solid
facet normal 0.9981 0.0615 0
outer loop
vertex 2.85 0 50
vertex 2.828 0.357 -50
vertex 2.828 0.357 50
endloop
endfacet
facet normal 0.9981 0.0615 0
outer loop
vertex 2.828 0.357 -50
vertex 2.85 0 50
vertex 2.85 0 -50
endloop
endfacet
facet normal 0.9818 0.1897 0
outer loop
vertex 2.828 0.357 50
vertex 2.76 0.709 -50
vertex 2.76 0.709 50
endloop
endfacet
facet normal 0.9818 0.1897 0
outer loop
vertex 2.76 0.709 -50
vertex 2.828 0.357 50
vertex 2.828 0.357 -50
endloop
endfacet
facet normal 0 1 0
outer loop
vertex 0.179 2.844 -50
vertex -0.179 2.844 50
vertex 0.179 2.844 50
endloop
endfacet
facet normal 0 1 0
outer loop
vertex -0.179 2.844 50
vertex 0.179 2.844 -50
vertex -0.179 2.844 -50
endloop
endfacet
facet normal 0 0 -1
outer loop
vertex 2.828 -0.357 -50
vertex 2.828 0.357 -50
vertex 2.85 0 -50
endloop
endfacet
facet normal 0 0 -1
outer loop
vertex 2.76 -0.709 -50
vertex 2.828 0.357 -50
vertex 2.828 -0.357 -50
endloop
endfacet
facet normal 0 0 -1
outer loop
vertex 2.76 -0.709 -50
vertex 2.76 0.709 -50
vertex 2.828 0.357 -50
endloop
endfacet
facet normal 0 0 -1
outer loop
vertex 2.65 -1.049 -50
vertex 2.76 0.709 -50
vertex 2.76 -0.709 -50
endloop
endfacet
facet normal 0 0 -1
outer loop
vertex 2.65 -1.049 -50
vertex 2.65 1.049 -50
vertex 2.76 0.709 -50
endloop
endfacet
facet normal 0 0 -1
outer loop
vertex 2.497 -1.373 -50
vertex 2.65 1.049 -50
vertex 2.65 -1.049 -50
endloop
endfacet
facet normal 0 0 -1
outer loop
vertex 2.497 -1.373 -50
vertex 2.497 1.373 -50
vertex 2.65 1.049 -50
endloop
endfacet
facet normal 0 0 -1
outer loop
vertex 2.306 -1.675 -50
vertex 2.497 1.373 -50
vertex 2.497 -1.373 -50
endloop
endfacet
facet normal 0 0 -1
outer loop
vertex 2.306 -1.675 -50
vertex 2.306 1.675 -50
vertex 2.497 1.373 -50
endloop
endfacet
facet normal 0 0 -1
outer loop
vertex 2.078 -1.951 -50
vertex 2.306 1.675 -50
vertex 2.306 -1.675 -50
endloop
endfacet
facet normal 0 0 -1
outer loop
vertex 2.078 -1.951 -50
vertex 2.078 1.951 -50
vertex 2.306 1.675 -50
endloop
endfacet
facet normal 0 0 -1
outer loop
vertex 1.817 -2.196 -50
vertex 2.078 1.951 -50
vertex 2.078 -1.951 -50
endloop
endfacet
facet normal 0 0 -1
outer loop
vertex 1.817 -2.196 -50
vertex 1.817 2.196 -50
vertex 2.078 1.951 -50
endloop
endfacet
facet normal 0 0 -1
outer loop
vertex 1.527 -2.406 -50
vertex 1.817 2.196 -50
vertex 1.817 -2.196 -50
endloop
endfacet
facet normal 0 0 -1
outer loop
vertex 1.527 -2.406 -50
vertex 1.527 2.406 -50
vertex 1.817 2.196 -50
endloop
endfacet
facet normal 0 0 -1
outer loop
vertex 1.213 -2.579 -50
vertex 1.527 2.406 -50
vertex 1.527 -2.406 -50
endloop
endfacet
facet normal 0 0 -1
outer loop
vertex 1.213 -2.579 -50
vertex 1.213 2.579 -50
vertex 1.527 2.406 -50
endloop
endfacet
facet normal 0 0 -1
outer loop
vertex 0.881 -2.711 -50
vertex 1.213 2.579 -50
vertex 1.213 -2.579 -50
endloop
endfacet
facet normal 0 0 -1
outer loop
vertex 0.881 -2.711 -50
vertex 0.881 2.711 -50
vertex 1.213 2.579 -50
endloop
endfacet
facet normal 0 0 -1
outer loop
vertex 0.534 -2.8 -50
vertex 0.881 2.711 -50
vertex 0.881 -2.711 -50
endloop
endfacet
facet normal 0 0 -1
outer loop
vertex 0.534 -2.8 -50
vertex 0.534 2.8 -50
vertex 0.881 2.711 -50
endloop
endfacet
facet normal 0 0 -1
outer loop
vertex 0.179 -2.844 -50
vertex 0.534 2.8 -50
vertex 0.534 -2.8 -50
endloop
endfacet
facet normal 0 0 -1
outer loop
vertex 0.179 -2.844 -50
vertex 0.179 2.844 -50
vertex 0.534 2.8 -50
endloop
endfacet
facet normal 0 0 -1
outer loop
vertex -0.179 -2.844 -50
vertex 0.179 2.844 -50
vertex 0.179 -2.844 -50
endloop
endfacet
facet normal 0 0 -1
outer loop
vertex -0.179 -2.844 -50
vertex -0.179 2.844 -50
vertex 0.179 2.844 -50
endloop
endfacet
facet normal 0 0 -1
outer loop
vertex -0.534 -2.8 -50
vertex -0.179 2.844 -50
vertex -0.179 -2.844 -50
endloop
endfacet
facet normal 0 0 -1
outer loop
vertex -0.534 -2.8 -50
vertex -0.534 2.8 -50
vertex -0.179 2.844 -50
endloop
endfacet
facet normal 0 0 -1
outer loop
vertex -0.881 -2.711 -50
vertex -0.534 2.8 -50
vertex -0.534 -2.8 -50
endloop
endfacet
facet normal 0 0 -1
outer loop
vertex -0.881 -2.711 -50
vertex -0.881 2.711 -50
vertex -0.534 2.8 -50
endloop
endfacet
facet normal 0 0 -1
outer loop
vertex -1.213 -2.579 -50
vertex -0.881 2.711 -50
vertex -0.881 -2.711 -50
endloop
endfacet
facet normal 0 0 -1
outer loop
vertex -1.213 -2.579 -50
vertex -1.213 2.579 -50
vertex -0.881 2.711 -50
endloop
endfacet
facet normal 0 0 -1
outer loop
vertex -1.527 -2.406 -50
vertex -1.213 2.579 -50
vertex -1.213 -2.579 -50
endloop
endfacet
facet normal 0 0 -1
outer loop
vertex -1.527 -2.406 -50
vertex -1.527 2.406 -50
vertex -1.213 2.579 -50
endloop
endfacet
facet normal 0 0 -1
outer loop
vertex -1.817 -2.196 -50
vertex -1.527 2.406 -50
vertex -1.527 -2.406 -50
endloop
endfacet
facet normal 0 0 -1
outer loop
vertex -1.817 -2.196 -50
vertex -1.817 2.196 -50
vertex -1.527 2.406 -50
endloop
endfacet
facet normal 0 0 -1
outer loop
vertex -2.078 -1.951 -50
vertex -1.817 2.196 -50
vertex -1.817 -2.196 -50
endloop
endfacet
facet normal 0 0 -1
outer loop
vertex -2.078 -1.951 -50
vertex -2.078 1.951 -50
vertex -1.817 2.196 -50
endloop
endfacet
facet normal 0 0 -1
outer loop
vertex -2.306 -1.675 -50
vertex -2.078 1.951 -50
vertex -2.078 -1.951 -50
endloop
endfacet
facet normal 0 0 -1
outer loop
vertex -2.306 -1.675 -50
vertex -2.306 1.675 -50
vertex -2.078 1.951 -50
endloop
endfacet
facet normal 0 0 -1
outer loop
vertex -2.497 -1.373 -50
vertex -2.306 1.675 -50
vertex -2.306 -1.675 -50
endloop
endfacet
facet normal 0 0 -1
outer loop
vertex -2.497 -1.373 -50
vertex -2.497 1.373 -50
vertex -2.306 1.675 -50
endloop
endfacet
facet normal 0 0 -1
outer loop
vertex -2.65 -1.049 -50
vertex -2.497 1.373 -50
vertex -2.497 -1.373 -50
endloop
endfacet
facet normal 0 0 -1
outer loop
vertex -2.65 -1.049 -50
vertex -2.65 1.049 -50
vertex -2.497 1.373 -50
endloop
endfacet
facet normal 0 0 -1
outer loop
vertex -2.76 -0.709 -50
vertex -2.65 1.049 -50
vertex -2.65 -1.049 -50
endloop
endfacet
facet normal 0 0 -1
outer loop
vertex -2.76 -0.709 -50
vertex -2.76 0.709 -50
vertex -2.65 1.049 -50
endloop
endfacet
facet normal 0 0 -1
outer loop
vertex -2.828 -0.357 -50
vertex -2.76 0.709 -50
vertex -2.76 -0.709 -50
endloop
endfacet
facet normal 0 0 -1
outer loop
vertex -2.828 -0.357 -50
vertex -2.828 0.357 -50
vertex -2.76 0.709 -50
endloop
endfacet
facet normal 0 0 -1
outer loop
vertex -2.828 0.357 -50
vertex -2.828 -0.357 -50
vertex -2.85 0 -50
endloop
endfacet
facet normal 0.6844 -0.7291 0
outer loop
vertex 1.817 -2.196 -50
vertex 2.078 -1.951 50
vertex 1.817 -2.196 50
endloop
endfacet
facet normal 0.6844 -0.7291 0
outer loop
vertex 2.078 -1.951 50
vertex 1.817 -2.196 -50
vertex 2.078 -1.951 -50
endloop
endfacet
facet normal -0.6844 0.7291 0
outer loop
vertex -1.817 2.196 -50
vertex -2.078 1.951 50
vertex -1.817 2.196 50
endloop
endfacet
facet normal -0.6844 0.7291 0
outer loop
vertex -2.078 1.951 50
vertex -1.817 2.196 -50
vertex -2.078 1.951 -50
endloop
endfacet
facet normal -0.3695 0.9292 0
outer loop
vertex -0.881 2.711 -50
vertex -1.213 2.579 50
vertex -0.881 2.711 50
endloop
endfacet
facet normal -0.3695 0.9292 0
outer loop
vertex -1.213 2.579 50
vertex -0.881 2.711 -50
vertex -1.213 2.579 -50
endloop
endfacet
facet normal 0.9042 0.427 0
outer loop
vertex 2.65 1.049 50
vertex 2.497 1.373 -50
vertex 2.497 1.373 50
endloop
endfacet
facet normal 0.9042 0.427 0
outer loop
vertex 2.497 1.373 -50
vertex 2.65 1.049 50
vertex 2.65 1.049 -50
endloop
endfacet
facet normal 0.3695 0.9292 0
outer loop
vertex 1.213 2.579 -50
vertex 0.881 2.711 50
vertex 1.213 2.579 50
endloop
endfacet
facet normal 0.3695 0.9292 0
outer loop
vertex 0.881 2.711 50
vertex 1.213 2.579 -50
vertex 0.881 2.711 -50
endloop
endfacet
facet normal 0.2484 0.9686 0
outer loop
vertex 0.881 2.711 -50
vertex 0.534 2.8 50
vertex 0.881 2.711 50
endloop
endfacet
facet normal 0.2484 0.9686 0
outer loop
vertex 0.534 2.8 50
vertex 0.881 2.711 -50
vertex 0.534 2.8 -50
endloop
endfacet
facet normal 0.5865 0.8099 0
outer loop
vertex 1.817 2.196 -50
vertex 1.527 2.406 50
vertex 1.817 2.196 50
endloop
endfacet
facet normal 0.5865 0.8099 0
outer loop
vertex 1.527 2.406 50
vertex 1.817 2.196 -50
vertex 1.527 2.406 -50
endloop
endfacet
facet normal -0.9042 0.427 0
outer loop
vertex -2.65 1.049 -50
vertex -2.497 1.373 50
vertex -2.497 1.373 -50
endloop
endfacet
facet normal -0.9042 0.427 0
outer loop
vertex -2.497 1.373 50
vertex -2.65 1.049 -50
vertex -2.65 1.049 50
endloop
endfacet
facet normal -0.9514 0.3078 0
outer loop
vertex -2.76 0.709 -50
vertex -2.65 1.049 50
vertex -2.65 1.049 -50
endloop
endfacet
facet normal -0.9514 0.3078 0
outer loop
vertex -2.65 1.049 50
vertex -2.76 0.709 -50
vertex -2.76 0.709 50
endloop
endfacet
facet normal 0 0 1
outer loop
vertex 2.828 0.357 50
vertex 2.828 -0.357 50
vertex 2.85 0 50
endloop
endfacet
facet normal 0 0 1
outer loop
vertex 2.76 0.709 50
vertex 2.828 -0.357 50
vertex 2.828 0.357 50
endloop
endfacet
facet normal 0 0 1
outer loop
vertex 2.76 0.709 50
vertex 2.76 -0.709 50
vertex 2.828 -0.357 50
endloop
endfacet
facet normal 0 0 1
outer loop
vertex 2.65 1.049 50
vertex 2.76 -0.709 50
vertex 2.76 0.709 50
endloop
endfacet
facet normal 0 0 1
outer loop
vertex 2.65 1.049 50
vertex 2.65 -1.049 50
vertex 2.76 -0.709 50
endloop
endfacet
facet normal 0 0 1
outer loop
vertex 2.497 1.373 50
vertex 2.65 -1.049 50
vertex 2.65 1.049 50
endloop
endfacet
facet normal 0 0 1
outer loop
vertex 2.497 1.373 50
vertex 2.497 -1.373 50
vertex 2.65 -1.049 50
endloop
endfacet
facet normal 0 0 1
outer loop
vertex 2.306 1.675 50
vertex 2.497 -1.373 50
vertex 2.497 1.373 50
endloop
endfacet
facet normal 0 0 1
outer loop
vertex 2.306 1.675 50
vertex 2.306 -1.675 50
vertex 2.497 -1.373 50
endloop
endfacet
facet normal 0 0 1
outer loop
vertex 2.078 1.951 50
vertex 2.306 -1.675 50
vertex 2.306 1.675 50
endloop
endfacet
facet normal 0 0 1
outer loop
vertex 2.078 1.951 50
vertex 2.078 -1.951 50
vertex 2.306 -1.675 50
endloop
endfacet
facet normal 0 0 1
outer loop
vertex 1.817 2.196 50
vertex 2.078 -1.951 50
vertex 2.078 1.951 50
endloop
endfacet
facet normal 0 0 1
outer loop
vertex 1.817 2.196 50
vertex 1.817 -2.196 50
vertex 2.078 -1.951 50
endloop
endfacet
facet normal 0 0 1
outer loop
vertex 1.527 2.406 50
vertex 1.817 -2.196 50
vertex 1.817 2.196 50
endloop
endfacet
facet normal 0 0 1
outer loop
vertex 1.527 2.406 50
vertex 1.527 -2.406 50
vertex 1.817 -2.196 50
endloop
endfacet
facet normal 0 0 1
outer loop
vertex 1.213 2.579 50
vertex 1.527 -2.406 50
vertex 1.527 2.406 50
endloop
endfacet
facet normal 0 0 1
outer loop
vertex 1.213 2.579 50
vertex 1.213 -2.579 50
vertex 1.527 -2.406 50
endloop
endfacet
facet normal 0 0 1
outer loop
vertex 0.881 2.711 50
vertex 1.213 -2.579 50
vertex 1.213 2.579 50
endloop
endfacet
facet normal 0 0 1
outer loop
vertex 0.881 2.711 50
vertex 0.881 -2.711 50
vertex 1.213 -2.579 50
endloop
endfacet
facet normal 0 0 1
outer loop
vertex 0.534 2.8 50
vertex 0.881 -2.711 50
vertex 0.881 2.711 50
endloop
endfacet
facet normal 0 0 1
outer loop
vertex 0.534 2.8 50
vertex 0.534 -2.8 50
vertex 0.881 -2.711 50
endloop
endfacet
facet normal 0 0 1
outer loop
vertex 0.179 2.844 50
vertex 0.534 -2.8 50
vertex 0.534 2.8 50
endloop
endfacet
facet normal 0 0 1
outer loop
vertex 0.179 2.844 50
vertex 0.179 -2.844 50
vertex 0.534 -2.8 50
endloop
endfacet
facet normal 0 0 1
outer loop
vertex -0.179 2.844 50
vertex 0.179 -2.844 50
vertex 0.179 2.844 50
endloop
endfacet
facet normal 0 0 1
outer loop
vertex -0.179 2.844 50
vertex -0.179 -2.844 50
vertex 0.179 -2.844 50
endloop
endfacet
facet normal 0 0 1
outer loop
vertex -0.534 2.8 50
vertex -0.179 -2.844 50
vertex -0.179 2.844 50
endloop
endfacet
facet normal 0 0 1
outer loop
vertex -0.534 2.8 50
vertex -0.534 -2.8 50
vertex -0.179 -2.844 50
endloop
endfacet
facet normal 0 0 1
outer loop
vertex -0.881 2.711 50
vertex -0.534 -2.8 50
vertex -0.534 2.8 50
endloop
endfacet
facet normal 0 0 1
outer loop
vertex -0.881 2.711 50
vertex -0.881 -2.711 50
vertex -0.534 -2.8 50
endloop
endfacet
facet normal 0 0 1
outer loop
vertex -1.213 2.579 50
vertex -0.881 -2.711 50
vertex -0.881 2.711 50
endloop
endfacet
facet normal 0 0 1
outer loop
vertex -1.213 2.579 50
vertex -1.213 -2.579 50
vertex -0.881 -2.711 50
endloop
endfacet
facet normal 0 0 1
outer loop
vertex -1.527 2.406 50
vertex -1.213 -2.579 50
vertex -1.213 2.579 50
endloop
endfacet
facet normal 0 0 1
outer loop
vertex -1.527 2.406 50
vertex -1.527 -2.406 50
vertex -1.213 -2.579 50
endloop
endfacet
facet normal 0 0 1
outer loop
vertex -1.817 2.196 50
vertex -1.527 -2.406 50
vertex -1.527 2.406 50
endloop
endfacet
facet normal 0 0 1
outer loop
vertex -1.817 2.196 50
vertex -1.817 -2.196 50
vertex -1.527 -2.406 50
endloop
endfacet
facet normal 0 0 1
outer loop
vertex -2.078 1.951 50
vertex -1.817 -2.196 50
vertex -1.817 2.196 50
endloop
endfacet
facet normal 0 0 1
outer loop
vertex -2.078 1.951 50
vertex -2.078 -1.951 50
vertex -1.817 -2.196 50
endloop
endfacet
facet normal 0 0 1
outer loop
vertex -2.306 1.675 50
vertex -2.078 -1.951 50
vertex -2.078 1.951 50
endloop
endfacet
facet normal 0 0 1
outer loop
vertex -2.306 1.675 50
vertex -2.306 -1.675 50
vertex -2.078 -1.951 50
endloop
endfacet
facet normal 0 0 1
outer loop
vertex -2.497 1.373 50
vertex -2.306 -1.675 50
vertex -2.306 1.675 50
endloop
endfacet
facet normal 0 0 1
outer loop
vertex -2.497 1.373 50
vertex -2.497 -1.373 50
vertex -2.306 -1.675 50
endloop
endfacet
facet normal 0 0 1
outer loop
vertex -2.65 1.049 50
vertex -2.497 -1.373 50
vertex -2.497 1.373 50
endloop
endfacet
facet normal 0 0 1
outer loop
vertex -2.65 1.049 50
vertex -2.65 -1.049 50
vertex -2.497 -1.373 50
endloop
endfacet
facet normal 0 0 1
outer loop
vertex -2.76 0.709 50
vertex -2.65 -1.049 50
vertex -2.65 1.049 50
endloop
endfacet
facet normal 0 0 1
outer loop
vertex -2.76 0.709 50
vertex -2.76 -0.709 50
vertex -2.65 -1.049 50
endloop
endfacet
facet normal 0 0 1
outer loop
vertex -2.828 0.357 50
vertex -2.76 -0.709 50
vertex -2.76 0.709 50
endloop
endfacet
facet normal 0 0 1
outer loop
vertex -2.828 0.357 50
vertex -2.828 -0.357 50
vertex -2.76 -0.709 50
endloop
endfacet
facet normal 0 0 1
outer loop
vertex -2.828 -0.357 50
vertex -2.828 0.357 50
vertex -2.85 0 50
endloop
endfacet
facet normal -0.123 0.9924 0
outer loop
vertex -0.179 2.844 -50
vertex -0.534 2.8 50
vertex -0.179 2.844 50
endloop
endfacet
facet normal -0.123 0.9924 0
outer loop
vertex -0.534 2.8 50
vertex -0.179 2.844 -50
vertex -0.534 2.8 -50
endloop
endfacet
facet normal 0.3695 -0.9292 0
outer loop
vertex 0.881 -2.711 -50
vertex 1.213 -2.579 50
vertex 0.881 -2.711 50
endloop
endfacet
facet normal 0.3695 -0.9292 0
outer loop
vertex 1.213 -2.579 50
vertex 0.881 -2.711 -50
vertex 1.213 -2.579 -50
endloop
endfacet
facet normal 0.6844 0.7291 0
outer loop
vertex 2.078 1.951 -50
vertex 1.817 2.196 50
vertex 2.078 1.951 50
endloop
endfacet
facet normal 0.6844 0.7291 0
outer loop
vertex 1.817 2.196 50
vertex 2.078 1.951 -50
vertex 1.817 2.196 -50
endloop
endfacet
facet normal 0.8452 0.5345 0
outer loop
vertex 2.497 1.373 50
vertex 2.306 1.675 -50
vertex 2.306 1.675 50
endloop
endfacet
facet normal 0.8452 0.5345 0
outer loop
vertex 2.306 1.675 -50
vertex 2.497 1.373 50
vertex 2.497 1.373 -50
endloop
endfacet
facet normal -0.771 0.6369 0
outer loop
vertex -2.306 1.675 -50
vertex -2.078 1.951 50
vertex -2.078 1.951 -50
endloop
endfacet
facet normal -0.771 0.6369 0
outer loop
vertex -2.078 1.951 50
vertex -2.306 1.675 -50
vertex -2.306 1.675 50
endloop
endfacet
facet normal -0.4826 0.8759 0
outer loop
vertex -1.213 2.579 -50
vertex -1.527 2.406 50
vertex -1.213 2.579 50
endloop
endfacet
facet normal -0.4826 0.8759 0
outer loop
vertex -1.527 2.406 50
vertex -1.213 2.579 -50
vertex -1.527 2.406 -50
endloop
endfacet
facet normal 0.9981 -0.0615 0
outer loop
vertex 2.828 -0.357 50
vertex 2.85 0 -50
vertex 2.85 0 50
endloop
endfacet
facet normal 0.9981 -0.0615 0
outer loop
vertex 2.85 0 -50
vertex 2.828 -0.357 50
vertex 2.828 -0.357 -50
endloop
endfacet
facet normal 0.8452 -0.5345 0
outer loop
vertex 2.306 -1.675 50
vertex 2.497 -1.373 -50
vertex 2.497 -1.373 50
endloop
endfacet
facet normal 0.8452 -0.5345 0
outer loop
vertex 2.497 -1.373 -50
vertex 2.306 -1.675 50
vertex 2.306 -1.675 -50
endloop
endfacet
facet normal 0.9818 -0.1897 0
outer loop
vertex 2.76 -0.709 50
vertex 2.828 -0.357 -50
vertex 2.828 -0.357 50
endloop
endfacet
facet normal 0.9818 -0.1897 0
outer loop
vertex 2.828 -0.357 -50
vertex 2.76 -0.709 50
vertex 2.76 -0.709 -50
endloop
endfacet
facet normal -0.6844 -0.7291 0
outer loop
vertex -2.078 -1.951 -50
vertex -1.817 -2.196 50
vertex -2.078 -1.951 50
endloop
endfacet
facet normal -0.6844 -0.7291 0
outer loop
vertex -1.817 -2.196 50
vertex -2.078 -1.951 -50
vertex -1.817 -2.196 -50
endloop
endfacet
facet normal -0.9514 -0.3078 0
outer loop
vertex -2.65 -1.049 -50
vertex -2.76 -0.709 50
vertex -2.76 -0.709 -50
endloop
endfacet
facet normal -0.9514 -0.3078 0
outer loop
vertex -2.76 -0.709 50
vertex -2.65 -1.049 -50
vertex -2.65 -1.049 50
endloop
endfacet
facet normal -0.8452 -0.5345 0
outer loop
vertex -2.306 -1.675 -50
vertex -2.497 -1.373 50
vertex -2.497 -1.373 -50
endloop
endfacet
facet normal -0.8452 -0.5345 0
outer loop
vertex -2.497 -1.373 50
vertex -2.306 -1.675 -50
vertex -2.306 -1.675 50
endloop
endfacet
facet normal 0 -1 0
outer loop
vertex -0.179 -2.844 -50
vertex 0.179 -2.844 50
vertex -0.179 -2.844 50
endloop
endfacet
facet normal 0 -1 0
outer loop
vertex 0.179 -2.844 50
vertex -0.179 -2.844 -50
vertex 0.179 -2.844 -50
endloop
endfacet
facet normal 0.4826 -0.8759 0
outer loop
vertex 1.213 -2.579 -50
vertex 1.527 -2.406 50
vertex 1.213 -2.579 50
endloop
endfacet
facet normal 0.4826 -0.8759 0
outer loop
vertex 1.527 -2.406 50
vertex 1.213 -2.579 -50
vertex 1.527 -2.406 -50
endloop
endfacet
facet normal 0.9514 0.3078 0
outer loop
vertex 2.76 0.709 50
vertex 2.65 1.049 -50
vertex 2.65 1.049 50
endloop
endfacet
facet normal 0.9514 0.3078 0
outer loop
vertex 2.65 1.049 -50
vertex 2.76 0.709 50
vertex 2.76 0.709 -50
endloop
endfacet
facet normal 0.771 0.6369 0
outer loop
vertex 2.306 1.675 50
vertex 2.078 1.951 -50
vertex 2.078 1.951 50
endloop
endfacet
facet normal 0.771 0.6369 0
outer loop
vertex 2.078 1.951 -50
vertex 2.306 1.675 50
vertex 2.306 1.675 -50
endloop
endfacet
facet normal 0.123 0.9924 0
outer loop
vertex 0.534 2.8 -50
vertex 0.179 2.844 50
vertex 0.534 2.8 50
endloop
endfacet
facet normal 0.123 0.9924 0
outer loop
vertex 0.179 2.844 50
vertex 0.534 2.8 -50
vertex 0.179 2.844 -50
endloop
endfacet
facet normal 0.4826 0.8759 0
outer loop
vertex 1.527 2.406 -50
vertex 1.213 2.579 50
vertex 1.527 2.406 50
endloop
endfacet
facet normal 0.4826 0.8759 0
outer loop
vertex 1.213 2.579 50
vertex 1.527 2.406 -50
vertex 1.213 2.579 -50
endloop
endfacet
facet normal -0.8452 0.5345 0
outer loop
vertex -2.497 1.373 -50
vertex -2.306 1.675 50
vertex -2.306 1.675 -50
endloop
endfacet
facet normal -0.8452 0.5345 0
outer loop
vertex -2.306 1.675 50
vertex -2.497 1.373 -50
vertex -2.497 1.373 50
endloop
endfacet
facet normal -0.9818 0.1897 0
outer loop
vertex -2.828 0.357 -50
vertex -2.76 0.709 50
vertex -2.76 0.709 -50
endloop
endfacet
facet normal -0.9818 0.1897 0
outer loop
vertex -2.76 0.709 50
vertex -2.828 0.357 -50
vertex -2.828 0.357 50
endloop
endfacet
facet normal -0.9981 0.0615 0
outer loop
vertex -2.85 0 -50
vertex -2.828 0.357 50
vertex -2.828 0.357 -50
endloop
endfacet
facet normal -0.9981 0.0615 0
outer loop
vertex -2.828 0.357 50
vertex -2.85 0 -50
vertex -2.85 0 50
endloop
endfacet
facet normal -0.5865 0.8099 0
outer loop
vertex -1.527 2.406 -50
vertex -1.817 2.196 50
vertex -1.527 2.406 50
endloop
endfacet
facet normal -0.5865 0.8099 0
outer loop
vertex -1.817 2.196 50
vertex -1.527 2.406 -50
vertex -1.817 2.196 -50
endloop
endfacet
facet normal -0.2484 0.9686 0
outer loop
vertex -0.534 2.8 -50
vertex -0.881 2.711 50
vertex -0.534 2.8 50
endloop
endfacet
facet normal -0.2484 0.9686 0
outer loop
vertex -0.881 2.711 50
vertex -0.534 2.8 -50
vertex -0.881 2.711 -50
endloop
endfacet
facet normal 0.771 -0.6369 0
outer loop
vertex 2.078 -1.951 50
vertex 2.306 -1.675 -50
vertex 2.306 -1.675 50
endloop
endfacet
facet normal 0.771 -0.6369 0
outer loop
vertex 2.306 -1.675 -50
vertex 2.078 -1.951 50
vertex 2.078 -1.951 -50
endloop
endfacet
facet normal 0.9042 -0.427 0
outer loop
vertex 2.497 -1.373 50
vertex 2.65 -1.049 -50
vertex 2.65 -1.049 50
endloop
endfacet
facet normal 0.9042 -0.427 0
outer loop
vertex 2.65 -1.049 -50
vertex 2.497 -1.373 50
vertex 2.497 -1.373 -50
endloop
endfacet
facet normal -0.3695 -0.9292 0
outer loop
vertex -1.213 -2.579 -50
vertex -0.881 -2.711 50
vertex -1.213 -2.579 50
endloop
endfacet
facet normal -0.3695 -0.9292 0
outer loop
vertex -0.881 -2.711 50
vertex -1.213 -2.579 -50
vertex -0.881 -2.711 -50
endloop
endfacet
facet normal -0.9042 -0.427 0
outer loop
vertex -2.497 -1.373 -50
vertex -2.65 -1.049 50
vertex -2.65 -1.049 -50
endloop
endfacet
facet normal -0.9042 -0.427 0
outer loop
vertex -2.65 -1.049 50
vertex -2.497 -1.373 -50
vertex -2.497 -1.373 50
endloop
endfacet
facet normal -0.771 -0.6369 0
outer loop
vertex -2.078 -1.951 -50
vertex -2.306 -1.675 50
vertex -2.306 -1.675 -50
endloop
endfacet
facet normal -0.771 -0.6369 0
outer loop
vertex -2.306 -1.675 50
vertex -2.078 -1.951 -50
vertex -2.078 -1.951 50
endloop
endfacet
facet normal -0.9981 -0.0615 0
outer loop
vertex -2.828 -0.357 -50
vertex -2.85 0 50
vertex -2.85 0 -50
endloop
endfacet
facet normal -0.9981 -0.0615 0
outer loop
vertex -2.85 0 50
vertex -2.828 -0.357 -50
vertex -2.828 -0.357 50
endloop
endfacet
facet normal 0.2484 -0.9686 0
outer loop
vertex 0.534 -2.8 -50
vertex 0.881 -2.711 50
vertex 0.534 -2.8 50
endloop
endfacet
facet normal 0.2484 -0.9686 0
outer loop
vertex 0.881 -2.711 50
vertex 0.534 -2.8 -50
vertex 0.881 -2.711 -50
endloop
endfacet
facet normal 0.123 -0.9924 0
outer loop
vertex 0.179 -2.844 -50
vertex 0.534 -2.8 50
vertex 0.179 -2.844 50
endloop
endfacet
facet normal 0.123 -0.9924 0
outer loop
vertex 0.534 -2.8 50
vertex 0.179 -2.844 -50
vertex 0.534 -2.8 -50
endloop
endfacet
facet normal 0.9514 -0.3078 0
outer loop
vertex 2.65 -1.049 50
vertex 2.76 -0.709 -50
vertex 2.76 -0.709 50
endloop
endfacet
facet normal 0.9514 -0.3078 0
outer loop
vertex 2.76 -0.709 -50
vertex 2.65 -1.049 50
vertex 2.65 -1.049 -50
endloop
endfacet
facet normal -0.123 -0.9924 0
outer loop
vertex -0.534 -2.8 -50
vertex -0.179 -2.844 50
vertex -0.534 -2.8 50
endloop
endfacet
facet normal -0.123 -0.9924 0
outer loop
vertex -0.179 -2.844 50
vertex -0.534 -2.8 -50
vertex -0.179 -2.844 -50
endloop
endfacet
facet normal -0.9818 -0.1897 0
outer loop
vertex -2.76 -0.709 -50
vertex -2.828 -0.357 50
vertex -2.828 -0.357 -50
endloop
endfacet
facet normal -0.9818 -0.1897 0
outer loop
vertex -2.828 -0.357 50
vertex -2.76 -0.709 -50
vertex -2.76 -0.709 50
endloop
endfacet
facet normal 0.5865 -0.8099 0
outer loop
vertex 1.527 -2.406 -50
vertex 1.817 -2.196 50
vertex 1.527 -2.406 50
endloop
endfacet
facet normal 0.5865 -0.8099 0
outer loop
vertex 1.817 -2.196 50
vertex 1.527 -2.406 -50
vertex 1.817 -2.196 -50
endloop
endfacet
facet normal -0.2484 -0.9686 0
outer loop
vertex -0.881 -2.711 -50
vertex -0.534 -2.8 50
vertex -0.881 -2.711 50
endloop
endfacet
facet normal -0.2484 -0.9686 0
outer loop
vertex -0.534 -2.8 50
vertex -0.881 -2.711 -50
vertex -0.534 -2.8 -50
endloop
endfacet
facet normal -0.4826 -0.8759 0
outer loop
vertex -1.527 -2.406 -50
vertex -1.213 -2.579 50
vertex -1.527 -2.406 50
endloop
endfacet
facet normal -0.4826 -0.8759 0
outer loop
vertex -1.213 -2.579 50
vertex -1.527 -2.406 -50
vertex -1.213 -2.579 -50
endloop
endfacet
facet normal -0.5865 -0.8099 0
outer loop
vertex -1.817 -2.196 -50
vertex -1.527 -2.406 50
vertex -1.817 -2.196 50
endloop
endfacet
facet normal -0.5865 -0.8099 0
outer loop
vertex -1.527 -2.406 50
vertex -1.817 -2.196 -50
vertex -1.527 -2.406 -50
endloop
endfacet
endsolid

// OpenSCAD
$fn = 50;


difference() {
	union() {
		translate(v = [0, 0, -50.0000000000]) {
			cylinder(h = 100, r = 2.8500000000);
		}
	}
	union() {
		translate(v = [0, 0, -100.0000000000]) {
			cylinder(h = 200, r = 0);
		}
	}
}
